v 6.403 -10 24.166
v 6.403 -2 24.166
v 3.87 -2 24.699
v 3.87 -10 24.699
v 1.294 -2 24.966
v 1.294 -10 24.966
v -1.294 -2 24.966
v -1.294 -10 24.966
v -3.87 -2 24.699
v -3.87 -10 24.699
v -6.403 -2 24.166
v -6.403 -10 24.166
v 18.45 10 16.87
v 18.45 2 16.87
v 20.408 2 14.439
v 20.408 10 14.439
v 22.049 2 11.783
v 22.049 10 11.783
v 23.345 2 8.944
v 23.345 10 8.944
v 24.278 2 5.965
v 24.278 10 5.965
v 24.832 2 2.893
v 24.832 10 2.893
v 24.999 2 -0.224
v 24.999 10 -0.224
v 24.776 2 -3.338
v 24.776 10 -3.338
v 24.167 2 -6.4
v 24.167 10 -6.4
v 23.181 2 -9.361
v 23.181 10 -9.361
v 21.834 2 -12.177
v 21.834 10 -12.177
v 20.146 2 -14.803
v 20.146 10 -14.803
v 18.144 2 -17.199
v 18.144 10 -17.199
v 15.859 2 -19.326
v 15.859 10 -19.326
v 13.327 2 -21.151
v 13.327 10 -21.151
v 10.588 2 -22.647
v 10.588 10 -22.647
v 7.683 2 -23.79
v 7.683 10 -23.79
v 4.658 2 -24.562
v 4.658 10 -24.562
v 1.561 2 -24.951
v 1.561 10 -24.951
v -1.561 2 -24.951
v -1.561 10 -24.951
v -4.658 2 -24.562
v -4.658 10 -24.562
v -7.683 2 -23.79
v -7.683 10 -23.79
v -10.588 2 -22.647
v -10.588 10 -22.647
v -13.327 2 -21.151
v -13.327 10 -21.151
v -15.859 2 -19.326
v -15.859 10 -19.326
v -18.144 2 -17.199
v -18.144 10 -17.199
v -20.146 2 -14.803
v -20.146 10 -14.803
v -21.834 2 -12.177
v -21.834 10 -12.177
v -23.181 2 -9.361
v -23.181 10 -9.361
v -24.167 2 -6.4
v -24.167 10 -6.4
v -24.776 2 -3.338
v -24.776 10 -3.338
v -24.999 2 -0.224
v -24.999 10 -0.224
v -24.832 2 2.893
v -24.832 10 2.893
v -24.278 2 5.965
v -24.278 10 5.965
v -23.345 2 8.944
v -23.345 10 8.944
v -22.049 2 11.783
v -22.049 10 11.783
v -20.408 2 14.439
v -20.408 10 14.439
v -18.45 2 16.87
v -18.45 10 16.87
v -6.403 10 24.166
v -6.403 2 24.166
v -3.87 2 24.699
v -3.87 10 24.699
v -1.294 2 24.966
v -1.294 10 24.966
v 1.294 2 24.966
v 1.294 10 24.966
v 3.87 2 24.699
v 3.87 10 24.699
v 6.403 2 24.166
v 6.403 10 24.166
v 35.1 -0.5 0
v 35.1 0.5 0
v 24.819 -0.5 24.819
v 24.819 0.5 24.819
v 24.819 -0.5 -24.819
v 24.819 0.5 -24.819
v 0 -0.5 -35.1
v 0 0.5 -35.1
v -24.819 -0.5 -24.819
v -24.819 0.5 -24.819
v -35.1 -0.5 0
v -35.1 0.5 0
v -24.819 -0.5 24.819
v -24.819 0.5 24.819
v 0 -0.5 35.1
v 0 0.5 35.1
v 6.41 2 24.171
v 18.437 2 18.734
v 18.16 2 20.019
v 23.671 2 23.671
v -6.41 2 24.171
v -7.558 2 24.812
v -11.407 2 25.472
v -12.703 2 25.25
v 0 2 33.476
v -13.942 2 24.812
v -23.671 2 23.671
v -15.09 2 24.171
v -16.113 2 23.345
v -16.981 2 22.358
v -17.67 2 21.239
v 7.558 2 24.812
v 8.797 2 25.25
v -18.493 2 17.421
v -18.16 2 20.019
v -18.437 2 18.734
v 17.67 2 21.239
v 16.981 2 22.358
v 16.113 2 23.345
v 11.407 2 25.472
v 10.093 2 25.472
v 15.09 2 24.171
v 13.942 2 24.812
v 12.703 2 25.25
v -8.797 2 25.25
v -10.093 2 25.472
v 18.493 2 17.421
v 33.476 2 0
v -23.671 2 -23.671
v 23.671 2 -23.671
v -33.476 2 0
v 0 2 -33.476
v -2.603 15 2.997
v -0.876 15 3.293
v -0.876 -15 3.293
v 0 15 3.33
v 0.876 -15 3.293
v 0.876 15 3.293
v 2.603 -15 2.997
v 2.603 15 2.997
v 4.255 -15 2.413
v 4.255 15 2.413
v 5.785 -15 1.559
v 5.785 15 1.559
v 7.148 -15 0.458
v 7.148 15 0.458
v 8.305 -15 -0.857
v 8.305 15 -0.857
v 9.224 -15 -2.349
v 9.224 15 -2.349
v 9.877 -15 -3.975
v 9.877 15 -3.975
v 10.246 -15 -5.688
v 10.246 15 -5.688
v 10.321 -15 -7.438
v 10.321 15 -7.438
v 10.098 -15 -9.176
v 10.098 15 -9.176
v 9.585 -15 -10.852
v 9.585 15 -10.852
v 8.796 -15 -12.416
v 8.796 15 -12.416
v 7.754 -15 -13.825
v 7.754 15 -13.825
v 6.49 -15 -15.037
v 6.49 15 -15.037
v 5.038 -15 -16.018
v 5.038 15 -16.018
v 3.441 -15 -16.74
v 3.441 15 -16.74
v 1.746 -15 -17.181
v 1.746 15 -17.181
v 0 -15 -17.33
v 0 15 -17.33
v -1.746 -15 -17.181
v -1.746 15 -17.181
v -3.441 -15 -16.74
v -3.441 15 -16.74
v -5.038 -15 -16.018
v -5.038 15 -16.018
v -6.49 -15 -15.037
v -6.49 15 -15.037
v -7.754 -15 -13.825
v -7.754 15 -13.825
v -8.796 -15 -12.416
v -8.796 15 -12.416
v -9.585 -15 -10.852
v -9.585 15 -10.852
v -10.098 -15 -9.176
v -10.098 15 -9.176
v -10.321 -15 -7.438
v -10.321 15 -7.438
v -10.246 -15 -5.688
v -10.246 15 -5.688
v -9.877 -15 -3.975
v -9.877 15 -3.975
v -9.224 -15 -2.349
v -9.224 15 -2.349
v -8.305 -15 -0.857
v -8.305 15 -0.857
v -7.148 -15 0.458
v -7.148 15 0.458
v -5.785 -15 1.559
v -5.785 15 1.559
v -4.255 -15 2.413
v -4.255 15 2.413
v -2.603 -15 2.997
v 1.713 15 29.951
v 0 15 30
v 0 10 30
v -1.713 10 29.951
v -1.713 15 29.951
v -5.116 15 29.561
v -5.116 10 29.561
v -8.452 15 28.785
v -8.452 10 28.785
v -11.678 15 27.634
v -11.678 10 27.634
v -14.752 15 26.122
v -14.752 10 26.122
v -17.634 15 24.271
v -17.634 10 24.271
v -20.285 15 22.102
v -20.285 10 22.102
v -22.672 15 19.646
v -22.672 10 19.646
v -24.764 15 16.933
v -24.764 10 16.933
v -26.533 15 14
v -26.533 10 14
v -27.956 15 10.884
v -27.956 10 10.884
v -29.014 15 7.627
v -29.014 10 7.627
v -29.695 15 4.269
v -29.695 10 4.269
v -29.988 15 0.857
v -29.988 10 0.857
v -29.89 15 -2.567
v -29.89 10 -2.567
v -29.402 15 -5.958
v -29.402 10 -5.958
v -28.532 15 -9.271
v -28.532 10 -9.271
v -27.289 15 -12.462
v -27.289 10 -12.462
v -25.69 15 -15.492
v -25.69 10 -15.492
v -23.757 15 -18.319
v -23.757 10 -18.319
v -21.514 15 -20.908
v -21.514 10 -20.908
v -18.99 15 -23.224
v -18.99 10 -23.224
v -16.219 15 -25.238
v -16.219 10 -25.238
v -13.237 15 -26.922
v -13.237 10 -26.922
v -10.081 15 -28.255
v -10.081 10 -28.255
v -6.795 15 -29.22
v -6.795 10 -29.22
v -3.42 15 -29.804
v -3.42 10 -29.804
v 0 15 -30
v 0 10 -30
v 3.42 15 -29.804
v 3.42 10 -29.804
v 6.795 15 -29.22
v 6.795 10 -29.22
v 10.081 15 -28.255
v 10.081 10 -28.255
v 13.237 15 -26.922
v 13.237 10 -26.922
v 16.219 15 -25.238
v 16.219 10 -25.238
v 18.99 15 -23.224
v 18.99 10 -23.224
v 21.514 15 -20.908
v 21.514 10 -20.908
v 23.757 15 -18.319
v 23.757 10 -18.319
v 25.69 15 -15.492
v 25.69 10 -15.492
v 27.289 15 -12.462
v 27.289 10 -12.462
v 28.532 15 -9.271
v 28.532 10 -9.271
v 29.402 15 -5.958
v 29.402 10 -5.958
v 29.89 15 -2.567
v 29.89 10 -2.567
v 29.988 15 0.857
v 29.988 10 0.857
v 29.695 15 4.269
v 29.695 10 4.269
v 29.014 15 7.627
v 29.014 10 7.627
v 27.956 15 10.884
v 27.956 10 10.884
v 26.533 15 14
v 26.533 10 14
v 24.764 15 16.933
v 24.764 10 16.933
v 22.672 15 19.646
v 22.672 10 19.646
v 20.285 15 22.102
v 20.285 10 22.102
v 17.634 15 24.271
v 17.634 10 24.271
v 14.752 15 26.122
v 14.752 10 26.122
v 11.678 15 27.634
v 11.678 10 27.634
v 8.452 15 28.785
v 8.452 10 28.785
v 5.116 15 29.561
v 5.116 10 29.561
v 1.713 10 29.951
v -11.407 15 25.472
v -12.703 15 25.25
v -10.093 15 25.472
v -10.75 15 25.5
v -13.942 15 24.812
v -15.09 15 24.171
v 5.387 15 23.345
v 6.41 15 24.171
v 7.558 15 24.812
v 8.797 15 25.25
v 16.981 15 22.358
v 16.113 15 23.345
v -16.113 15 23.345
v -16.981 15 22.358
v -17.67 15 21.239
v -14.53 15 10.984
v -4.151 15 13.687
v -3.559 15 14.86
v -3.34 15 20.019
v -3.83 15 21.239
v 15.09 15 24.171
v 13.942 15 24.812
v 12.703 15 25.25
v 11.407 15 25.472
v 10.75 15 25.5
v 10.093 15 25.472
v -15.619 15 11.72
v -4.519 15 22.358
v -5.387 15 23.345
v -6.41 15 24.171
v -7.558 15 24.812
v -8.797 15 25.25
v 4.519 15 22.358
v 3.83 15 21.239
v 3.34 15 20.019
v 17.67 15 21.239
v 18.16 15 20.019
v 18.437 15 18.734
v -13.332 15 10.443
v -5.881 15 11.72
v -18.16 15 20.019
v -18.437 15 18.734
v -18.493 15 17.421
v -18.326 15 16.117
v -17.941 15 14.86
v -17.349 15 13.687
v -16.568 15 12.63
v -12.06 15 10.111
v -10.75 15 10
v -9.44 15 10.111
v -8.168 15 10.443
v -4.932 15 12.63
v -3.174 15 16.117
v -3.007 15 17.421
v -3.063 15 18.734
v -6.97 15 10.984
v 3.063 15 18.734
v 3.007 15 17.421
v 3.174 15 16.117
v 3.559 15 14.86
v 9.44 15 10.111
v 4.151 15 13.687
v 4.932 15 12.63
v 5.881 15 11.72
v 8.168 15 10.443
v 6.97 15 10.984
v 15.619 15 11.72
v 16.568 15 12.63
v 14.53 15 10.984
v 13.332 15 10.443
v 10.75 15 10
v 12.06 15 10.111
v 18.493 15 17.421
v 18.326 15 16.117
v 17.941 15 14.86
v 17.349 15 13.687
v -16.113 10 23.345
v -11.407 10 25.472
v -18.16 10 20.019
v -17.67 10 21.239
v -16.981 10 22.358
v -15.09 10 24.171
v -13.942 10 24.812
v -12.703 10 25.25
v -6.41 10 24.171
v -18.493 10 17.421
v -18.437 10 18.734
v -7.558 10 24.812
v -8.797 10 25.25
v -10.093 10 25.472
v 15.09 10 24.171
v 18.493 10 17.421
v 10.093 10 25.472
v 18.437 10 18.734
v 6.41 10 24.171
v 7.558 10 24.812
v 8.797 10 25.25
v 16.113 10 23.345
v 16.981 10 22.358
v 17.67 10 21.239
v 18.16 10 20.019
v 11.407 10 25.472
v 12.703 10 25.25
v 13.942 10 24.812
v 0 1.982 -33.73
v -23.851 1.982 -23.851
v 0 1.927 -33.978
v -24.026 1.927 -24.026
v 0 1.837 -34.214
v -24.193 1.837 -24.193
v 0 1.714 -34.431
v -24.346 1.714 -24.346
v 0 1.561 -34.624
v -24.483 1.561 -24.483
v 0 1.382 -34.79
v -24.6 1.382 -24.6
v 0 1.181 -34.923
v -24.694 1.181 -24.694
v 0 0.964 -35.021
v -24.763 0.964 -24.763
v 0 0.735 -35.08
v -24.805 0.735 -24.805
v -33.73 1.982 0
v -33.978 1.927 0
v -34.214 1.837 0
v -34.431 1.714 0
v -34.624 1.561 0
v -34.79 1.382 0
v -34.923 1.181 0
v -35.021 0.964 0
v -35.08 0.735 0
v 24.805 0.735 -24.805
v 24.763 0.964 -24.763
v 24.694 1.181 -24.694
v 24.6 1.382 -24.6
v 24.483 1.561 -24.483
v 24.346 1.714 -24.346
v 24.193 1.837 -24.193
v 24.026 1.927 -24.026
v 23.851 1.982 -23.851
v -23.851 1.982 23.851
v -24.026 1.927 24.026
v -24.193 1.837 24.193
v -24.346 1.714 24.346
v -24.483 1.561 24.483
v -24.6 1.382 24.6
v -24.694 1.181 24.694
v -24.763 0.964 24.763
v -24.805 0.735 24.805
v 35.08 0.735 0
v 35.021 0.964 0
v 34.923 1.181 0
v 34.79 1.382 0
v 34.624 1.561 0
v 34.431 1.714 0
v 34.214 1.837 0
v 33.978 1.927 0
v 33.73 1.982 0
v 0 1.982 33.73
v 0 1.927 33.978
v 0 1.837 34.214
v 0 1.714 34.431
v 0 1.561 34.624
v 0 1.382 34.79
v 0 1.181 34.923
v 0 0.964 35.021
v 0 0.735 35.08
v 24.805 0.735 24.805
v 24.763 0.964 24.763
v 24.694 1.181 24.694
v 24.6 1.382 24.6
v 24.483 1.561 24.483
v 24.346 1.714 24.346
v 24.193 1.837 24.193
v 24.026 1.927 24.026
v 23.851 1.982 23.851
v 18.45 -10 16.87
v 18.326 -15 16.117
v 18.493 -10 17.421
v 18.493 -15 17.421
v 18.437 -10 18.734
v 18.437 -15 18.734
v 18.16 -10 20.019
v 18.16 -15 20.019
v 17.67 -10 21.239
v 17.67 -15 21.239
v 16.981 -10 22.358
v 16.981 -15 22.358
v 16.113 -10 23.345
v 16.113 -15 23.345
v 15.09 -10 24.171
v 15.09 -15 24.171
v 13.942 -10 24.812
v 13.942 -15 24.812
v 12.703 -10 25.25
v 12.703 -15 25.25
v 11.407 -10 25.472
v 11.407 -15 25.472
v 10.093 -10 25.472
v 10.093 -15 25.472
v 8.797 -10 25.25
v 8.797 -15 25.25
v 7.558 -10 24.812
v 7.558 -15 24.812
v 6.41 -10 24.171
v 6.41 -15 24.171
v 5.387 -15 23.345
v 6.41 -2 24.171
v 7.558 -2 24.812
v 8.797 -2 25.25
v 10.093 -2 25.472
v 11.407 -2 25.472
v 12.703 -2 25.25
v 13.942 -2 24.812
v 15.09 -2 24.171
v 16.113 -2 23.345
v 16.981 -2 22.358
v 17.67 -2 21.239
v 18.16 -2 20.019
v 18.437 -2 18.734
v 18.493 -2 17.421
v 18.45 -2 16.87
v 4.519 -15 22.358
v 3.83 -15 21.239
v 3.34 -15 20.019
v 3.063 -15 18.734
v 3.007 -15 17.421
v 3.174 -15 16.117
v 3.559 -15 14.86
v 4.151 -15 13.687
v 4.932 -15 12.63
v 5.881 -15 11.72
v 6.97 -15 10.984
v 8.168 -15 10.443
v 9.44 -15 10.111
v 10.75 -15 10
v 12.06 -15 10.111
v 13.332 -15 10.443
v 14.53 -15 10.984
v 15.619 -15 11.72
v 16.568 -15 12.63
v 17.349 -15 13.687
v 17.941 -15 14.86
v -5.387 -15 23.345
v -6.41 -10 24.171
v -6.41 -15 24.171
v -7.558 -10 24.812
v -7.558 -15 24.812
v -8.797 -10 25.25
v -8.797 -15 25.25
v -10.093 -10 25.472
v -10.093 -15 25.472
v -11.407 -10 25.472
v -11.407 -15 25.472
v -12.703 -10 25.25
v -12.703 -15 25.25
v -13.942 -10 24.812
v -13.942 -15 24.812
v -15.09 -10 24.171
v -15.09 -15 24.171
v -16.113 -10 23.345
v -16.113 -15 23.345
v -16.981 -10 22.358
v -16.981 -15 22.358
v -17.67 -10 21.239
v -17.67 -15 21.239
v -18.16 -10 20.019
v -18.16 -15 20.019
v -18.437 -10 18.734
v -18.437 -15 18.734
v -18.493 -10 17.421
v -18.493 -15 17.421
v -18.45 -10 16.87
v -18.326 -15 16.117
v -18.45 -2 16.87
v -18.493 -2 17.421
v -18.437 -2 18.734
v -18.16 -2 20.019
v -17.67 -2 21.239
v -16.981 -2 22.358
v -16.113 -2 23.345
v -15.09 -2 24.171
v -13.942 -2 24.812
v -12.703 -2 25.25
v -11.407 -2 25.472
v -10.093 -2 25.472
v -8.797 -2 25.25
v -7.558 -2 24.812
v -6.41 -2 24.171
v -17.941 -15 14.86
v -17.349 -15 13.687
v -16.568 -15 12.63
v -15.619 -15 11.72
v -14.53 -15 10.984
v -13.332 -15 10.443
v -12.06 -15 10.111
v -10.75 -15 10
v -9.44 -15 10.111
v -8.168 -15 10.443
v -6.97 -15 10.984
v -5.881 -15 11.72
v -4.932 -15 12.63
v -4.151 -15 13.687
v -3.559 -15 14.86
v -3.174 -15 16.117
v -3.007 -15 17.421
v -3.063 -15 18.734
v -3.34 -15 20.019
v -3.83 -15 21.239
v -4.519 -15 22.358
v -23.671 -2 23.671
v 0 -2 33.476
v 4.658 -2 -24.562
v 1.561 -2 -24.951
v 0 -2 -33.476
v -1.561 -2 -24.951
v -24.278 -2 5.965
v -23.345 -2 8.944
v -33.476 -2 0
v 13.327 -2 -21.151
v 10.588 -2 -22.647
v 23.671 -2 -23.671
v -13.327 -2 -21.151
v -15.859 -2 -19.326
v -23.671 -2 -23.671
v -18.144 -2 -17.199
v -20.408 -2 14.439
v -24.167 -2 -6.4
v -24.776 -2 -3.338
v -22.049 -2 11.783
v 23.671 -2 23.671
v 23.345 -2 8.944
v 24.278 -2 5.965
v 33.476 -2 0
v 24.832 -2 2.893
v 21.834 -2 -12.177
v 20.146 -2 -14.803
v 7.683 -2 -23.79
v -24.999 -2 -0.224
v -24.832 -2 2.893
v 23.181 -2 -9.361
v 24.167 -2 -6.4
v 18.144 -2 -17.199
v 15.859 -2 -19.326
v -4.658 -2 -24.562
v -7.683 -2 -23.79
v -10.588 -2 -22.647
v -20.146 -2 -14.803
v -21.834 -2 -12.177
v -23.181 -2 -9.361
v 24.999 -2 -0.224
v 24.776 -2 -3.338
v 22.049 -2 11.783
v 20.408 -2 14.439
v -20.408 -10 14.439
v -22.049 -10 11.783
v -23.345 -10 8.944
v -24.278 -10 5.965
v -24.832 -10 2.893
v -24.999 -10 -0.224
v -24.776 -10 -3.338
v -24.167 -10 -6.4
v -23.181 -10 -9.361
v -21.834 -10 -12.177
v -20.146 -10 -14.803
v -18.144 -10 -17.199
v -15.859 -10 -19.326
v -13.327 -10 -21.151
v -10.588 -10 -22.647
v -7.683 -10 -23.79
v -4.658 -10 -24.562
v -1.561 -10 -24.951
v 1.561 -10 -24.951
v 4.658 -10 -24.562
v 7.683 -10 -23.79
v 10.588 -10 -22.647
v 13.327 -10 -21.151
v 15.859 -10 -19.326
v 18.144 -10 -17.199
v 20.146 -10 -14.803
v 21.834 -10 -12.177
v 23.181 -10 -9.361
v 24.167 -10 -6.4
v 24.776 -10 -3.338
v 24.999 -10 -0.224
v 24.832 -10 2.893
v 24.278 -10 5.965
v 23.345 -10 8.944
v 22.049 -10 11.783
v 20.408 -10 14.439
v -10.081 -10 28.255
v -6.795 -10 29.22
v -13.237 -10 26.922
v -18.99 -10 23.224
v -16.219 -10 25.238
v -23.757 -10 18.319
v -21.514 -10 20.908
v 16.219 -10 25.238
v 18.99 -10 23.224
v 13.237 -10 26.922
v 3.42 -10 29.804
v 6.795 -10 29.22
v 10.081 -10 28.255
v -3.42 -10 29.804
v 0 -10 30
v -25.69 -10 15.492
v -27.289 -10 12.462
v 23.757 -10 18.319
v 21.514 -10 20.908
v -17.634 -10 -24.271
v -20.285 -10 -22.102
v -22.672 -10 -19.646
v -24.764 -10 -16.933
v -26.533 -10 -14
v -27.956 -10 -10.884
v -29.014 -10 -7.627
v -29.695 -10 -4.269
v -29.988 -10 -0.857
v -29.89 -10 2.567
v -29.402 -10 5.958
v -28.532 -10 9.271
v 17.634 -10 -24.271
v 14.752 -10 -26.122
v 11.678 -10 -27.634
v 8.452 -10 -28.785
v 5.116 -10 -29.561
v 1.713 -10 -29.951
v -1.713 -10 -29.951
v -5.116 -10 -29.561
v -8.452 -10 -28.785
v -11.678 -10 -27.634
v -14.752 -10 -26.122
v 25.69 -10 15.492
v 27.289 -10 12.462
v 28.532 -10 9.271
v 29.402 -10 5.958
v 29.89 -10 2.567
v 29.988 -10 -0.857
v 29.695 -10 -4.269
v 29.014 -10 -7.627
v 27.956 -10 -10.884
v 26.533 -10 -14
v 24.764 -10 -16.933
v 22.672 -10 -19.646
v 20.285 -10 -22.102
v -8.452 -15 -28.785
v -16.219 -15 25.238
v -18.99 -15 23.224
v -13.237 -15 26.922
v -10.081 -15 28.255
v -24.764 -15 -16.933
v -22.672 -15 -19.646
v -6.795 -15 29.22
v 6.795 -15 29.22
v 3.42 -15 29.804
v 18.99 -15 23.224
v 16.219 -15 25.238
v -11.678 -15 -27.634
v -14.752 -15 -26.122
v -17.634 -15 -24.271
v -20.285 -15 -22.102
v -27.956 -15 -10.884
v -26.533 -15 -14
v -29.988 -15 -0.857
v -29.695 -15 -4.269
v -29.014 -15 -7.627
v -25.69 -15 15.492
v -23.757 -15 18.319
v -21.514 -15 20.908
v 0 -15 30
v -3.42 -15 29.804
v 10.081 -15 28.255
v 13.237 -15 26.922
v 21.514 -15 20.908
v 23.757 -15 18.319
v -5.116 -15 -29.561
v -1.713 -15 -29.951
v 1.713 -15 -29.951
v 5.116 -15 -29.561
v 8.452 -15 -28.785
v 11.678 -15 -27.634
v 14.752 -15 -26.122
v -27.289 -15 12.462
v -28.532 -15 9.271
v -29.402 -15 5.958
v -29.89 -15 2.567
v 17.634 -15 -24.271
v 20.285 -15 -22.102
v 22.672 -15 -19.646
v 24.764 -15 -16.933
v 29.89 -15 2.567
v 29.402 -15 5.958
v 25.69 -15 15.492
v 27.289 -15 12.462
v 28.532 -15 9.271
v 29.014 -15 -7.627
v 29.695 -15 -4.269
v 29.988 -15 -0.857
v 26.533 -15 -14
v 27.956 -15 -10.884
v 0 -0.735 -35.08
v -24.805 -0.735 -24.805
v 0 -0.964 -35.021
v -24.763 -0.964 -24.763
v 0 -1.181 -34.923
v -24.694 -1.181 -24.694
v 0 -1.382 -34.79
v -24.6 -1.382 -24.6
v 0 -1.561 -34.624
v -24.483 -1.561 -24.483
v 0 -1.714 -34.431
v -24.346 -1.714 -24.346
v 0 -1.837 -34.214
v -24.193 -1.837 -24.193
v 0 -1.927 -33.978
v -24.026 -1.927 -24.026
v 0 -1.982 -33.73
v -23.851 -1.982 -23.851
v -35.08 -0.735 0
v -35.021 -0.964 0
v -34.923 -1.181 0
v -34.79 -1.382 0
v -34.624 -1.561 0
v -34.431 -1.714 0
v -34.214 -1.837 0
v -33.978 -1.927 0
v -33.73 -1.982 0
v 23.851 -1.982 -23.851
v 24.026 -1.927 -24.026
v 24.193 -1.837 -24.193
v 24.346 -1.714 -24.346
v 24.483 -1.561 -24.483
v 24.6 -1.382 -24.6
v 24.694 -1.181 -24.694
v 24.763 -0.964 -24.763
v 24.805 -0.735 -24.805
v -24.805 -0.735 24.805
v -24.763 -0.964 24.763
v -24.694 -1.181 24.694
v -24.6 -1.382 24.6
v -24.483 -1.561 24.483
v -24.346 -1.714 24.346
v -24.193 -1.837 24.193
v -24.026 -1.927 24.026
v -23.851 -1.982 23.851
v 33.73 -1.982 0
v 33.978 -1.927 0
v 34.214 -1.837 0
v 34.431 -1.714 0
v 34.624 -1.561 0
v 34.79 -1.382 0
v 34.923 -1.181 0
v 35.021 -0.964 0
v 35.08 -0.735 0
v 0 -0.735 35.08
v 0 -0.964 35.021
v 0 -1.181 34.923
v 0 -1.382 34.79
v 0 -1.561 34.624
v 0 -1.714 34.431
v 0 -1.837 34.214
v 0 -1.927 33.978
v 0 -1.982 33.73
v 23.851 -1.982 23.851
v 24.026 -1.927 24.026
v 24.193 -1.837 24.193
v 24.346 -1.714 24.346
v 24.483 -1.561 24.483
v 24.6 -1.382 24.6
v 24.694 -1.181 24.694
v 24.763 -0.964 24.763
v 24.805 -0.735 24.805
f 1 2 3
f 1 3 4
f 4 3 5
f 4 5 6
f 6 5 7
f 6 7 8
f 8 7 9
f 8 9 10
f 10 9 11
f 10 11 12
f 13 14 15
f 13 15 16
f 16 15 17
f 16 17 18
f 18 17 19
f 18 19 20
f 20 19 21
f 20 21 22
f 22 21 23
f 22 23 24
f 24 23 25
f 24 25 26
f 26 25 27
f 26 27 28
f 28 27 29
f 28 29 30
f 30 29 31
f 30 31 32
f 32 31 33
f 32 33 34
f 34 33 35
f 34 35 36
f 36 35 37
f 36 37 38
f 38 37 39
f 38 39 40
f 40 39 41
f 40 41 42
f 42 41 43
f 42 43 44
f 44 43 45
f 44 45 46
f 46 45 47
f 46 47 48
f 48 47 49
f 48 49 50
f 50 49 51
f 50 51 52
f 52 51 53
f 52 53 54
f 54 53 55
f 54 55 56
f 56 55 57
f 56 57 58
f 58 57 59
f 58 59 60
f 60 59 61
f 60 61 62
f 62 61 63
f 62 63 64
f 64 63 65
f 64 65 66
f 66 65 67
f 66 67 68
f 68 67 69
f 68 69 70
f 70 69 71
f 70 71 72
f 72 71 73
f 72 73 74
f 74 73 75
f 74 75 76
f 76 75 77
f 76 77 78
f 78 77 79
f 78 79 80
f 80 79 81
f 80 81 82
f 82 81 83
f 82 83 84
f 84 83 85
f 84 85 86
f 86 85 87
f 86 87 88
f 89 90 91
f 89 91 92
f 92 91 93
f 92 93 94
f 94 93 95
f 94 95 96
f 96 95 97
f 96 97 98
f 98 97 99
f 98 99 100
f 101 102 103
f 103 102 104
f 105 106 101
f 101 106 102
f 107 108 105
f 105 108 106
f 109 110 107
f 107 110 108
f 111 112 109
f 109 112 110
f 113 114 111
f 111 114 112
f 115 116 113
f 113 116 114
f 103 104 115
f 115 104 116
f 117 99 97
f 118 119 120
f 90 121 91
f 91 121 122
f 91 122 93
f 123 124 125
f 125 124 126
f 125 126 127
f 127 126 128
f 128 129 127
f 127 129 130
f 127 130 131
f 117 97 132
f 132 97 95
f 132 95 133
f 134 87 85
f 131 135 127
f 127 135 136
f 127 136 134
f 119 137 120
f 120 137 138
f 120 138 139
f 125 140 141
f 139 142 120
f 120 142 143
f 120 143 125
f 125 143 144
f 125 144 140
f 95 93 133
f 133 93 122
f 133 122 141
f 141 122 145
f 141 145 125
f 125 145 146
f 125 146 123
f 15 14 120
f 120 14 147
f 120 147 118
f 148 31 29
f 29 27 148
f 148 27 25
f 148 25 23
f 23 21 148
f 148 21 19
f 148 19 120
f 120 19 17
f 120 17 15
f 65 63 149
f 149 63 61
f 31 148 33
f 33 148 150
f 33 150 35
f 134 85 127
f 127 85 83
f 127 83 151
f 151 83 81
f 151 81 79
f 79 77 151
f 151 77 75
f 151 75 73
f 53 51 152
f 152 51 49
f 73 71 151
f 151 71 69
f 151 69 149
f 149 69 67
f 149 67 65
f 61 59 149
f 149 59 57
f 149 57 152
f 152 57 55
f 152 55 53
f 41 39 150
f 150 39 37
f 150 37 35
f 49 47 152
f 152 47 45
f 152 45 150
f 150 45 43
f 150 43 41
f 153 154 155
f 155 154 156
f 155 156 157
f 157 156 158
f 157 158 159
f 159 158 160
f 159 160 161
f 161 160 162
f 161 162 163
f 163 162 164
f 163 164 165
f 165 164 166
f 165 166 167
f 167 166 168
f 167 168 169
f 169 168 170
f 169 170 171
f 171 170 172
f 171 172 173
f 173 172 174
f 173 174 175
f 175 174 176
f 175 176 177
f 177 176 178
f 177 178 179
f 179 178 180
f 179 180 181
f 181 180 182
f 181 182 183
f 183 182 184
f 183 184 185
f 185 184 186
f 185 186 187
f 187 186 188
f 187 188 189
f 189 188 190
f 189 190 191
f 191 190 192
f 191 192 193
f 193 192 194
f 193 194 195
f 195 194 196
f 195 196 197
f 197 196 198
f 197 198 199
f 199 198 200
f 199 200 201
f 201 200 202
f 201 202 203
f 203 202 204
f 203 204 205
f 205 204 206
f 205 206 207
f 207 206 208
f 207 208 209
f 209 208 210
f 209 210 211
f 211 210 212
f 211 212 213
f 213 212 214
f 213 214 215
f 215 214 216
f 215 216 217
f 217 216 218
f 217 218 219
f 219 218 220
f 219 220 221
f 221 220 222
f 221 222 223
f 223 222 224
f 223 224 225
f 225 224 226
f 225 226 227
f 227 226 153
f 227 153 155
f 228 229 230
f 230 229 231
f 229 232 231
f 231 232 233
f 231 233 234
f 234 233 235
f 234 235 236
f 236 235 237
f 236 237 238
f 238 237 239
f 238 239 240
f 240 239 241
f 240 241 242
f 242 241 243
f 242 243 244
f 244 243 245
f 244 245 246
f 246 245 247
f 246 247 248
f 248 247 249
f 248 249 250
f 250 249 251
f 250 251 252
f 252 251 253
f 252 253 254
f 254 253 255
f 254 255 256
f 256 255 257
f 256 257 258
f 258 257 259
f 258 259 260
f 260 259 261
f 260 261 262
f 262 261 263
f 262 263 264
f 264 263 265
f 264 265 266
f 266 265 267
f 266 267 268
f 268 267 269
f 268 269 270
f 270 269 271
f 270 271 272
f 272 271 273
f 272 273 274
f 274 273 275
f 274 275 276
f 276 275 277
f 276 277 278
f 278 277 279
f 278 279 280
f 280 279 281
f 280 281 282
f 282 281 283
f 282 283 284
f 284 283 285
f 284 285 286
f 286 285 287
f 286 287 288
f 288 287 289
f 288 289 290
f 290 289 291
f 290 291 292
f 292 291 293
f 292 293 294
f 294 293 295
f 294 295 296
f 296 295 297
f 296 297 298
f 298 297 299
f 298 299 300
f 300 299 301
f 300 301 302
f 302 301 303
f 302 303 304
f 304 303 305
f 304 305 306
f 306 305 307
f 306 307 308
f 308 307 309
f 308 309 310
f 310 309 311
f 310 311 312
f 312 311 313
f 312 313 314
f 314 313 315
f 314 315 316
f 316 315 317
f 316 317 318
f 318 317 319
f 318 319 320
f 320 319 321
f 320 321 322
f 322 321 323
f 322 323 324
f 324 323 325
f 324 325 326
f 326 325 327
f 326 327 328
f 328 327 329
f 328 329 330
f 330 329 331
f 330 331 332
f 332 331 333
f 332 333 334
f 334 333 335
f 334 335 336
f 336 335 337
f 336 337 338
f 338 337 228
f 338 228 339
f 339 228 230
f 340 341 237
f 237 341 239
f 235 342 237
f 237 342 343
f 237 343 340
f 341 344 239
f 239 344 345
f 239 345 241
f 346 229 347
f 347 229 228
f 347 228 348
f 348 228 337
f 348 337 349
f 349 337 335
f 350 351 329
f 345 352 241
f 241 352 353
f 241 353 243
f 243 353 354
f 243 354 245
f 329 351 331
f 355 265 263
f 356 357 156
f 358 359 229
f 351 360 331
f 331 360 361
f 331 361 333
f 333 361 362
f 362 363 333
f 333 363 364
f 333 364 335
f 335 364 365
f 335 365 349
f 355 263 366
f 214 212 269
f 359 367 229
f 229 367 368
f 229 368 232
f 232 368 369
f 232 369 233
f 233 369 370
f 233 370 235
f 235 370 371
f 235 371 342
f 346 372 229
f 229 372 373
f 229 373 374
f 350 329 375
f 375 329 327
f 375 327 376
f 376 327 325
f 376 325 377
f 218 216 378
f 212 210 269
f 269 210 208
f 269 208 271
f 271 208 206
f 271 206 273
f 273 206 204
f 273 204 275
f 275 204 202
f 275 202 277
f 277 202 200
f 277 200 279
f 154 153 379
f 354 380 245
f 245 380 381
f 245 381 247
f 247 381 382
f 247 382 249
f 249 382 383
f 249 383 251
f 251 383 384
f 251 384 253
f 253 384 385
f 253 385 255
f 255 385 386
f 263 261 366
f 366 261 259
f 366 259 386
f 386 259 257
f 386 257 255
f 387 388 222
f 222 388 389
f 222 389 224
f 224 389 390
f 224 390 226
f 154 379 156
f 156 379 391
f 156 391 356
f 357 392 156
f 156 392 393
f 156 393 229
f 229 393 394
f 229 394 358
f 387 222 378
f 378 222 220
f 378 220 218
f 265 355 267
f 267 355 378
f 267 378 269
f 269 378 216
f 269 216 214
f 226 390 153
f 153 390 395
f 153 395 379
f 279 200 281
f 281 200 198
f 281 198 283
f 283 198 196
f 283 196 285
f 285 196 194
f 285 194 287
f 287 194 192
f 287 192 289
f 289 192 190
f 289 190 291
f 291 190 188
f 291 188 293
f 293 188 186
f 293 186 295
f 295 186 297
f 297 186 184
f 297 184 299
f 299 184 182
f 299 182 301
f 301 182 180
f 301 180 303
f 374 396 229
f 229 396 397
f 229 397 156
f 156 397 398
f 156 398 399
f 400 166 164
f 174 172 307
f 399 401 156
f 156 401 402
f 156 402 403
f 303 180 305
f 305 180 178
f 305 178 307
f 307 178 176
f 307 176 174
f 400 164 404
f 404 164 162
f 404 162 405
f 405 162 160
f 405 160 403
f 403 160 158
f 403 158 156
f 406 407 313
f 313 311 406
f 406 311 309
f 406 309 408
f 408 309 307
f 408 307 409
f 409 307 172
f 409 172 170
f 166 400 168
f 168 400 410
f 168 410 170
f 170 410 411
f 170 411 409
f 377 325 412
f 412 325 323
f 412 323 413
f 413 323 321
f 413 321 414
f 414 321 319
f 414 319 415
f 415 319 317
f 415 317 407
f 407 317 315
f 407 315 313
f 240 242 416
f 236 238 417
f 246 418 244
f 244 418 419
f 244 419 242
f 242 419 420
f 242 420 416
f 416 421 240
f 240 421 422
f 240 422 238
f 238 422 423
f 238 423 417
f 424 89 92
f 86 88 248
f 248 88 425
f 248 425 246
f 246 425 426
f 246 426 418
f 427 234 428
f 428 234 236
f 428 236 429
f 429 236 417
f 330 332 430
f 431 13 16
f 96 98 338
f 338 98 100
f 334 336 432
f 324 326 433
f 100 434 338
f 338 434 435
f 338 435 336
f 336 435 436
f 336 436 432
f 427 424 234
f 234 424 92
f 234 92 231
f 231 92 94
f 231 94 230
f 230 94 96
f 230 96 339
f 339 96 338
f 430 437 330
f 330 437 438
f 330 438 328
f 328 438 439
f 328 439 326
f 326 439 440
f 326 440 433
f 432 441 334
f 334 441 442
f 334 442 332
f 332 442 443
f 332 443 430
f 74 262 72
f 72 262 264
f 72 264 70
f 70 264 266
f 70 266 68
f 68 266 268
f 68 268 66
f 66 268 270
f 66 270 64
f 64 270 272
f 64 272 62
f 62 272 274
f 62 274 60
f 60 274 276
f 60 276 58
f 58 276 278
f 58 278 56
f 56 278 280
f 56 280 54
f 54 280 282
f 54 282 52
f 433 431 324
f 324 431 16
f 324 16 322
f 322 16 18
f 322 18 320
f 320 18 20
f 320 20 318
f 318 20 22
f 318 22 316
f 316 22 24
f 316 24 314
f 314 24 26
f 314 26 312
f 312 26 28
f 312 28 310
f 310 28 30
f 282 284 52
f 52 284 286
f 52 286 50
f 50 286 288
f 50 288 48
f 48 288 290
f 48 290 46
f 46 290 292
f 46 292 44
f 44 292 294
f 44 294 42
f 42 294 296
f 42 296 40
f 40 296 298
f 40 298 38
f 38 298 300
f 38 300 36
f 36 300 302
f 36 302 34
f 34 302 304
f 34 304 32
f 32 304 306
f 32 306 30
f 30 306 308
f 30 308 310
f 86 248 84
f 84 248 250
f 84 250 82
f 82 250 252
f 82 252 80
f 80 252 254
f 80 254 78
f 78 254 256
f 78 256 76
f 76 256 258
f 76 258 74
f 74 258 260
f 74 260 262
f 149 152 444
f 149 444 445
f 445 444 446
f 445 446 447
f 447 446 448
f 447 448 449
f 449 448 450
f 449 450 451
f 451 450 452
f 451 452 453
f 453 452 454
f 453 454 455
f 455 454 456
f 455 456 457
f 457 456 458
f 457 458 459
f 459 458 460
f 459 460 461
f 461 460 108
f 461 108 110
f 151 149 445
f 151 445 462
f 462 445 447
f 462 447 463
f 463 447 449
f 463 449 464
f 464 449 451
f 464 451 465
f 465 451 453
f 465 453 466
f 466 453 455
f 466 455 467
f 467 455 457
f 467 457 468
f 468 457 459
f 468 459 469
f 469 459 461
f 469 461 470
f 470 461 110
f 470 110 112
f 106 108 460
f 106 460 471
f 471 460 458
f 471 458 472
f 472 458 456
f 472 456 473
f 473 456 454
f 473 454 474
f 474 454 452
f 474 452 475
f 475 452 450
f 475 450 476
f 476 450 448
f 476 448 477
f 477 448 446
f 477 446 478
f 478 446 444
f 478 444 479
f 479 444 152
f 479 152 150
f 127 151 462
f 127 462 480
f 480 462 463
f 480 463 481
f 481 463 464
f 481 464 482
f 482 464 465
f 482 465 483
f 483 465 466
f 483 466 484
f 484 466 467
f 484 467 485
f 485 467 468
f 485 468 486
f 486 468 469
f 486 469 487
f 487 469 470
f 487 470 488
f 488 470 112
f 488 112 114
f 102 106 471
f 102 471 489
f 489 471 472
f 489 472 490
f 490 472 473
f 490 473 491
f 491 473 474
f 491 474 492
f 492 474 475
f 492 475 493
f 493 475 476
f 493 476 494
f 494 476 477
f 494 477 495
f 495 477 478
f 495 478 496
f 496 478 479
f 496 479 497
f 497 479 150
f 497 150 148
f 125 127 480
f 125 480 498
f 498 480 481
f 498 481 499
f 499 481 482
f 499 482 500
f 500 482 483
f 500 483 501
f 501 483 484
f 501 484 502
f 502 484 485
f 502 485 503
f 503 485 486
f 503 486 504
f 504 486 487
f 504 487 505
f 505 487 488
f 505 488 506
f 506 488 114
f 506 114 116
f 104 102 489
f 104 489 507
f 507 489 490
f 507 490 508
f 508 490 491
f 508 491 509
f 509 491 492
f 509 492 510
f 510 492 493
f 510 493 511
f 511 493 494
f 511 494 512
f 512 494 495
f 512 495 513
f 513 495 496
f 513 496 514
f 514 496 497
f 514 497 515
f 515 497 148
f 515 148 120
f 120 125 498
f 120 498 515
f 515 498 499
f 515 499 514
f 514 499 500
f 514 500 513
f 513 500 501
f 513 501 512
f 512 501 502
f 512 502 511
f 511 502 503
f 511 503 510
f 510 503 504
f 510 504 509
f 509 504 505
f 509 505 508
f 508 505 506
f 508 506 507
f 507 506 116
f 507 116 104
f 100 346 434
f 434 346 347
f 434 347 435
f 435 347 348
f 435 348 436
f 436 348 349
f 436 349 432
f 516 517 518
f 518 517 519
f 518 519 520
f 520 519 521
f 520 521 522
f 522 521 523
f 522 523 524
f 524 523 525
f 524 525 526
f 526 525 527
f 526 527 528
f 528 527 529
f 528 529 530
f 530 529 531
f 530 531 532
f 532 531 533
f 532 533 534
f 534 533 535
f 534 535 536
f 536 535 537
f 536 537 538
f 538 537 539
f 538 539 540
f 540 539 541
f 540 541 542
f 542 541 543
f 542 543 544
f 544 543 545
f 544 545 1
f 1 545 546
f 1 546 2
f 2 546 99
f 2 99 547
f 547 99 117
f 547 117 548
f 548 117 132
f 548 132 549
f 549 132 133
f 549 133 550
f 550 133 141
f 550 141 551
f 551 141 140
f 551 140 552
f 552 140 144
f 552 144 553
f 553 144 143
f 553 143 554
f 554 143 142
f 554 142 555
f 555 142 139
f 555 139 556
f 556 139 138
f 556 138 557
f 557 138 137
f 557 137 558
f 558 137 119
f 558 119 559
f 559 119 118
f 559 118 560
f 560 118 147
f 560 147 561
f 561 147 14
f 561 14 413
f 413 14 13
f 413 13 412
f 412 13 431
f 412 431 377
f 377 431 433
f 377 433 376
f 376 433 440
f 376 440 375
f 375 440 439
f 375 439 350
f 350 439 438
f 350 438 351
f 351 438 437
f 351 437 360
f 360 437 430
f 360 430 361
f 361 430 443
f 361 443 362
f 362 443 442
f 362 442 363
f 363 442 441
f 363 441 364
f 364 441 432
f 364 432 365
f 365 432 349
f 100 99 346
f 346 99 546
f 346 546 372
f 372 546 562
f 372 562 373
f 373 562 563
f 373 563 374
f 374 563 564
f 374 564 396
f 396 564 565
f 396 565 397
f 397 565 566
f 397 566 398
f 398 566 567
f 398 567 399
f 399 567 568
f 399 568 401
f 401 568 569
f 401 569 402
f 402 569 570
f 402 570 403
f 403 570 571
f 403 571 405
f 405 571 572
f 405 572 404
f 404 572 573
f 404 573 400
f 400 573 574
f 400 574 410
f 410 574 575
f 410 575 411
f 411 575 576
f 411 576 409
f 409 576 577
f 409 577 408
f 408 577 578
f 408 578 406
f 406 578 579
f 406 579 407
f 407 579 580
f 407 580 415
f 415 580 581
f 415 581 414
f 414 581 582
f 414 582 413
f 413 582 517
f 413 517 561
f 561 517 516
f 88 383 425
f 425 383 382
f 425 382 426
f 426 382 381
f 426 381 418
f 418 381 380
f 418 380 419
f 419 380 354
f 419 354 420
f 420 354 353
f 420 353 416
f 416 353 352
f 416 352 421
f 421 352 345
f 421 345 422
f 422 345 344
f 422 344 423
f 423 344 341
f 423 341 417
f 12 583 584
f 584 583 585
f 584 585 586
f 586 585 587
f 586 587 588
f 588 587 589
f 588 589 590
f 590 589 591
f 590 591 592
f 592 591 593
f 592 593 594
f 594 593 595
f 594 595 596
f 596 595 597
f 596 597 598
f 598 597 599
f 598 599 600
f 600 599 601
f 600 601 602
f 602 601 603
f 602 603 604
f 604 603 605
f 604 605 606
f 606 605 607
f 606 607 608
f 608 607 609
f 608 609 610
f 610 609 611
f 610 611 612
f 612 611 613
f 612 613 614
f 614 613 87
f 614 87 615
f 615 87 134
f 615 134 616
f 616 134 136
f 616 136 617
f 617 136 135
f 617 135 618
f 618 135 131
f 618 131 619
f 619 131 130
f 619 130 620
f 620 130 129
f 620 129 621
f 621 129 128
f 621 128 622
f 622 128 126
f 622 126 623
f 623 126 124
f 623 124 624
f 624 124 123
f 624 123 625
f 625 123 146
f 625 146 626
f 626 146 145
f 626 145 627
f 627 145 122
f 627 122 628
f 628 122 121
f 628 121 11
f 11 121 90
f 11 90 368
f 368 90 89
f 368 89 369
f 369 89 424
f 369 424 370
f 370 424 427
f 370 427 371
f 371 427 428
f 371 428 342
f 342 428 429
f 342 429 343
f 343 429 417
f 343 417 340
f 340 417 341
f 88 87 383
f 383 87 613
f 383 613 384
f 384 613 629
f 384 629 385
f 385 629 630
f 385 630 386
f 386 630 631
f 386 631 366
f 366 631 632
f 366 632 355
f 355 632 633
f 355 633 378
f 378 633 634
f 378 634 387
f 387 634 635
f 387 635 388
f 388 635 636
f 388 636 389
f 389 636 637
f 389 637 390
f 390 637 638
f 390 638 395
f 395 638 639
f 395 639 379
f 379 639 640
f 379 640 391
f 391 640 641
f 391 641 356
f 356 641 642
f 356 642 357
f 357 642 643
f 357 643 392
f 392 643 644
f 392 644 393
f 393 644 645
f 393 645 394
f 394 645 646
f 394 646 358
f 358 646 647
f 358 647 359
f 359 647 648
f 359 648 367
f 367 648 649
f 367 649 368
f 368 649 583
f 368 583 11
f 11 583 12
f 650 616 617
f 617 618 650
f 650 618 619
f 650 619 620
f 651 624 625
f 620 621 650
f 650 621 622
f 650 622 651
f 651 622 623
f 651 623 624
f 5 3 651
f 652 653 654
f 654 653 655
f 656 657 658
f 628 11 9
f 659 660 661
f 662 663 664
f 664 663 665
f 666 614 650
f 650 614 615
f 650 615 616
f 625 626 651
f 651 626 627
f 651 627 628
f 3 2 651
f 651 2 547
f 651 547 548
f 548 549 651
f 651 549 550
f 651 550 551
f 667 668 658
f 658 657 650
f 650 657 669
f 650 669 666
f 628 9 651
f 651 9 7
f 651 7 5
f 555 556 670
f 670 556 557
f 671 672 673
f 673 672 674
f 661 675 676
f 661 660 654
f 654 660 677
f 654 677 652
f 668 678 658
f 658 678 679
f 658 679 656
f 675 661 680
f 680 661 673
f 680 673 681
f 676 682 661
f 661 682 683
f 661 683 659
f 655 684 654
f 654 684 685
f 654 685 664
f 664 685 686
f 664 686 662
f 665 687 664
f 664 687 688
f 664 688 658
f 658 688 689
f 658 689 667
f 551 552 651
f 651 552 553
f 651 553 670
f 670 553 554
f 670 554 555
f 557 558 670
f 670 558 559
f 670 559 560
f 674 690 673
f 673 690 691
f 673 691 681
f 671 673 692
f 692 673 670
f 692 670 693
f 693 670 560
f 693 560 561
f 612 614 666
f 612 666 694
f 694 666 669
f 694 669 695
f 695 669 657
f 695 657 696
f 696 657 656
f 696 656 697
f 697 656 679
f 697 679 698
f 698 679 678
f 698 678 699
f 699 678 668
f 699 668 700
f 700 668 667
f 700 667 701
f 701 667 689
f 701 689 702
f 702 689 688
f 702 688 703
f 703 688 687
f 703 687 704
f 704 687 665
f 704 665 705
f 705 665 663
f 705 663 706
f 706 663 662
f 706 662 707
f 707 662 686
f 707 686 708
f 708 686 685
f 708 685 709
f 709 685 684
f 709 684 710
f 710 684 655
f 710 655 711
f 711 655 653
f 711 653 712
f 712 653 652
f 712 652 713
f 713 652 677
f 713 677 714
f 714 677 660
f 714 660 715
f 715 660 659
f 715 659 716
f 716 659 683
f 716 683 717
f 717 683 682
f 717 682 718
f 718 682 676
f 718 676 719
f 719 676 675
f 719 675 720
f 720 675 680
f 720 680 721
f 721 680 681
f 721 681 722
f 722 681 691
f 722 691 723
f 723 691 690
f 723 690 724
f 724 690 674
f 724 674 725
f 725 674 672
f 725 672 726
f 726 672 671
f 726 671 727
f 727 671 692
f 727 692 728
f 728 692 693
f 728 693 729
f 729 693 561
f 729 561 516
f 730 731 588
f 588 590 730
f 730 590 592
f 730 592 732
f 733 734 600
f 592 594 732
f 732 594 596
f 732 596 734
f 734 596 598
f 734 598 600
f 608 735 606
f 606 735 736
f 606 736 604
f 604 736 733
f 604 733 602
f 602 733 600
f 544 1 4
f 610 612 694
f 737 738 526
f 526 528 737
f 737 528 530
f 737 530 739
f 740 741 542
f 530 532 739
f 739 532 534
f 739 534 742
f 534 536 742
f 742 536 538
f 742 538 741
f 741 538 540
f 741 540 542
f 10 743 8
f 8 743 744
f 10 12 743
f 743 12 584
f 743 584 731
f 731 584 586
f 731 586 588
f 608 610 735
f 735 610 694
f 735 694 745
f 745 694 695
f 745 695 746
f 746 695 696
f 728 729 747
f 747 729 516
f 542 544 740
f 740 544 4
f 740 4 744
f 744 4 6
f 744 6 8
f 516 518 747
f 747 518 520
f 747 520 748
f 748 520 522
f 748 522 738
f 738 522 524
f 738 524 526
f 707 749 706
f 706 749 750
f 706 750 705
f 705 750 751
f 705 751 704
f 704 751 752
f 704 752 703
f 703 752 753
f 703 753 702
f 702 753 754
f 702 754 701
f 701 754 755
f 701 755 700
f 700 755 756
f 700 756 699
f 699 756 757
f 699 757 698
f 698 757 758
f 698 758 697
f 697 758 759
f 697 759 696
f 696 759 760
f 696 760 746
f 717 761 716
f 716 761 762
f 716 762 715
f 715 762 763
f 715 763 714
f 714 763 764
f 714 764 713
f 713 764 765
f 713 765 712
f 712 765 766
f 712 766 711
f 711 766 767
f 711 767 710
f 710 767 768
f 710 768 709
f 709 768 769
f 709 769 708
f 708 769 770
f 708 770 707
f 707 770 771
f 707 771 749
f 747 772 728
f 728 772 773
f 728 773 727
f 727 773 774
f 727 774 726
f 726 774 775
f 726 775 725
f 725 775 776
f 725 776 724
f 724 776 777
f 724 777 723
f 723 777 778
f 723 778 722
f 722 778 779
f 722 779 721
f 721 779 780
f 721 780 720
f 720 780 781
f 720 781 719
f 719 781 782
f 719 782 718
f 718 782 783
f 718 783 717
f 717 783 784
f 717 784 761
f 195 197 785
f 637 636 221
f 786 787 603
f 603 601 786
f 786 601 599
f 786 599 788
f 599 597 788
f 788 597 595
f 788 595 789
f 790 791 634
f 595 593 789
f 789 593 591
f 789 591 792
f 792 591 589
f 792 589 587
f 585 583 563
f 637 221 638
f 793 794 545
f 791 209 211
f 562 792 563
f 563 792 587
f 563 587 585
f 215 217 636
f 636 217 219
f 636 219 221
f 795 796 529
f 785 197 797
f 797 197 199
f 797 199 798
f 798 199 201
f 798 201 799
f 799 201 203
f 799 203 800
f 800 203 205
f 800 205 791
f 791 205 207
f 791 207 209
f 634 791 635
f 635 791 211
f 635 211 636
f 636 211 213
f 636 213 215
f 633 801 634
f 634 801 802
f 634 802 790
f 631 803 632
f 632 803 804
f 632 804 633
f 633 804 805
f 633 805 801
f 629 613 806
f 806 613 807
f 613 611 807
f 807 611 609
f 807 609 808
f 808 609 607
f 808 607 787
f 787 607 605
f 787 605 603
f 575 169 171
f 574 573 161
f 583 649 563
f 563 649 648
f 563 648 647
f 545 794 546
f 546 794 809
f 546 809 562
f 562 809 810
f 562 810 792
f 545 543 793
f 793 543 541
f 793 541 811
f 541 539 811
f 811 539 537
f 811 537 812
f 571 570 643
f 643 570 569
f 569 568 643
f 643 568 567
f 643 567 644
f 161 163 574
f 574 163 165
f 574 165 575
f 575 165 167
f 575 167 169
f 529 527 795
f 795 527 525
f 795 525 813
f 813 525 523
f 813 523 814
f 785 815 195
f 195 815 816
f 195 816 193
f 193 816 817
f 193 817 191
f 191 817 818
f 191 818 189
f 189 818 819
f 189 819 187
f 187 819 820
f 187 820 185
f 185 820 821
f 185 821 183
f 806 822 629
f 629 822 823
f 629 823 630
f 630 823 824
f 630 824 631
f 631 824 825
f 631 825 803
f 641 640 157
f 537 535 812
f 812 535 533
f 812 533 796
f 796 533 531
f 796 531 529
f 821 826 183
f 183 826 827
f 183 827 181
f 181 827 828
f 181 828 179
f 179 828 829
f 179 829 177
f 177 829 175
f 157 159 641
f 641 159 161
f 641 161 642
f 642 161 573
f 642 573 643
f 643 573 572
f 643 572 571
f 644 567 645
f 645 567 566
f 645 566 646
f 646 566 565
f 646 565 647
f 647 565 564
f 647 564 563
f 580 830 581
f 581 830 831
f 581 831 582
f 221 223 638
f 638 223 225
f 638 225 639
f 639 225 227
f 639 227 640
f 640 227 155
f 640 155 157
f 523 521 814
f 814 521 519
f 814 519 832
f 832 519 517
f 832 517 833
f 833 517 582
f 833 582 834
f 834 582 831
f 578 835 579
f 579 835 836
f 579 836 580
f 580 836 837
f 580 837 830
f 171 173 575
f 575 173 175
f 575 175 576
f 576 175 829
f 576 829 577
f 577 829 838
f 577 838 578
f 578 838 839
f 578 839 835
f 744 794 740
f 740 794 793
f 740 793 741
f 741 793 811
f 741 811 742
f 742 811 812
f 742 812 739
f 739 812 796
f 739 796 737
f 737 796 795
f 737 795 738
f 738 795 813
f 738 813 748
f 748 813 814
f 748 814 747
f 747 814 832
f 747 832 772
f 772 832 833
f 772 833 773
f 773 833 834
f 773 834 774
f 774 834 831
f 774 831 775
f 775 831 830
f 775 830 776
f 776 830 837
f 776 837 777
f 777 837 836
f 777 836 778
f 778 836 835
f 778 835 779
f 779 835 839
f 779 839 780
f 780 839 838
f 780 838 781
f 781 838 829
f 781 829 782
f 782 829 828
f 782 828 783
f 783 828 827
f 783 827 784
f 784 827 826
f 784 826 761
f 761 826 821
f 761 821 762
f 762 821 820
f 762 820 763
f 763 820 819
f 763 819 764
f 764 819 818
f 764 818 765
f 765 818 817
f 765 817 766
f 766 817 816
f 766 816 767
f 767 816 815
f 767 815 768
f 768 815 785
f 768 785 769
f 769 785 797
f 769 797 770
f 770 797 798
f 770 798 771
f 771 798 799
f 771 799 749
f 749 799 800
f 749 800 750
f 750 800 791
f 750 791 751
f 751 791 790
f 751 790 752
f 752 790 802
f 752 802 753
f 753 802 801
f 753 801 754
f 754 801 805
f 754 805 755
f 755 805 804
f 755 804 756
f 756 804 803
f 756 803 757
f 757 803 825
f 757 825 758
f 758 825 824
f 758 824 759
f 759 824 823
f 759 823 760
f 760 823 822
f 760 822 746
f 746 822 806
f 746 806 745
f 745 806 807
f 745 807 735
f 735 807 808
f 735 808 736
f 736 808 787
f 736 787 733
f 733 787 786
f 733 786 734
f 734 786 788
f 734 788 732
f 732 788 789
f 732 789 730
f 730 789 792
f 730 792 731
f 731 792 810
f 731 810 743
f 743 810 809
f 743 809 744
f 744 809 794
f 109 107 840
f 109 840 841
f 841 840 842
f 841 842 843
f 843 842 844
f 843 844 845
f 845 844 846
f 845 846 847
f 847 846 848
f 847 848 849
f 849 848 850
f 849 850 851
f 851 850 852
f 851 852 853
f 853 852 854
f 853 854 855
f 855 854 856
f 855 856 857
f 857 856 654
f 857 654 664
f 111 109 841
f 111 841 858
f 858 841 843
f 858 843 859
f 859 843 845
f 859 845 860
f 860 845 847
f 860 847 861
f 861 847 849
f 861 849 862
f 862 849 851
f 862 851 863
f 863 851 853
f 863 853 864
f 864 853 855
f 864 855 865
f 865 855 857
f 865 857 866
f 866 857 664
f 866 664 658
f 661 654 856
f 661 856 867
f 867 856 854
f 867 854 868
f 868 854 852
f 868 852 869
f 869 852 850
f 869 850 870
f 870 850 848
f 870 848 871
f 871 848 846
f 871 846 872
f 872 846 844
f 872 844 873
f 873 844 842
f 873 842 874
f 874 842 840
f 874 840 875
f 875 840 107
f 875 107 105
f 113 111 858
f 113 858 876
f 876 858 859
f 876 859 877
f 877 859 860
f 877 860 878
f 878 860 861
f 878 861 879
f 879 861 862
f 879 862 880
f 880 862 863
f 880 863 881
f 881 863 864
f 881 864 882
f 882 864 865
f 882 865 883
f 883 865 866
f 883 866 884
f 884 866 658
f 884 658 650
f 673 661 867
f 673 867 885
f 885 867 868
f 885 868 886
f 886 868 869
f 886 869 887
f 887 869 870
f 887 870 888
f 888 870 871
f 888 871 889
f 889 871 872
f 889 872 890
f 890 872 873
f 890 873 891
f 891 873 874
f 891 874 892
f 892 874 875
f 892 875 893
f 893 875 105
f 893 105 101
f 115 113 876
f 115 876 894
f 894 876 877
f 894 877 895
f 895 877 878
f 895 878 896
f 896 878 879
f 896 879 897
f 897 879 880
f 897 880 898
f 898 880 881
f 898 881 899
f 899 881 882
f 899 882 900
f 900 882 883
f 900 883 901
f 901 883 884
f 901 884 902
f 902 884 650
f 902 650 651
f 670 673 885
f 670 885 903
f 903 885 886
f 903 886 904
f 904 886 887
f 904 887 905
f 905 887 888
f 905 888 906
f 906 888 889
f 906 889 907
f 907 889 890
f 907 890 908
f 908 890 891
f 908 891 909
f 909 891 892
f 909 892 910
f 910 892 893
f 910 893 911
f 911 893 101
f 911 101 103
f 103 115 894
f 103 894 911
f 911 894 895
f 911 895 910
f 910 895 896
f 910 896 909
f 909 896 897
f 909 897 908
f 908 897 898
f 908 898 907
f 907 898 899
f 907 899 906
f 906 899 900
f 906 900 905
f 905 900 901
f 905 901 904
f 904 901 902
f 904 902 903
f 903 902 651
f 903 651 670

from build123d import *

# Parameters (mm, degrees)
BOSS_EXTRUDE1_DEPTH  = 2
SKETCH12_R           = 25
BOSS_EXTRUDE2_DEPTH  = 8
CUT_EXTRUDE6_START   = -36
SKETCH17_R           = 10.33
CUT_EXTRUDE6_DEPTH   = 45.856111051
SKETCH25_R           = 30
BOSS_EXTRUDE3_DEPTH  = 5
CUT_EXTRUDE9_START   = -53
SKETCH26_R           = 10.33
CUT_EXTRUDE9_DEPTH   = 53
FILLET3_R            = 1.5
SKETCH23_R           = 7.75
CUT_EXTRUDE11_DEPTH  = 36
FILLET3_OF_MIRROR1_R = 1.5
CUT_EXTRUDE12_START  = -10
SKETCH28_R           = 10.33
CUT_EXTRUDE12_DEPTH  = 10


with BuildPart() as part:
    # Sketch3 → Boss-Extrude1 (new body)
    with BuildSketch(Plane(origin=(0, 0, 0), x_dir=(1, 0, 0), z_dir=(0, 1, 0))):
        Polygon((35.1, 0), (24.81944802, 24.81944802), (0, 35.1), (-24.81944802, 24.81944802), (-35.1, 0), (-24.81944802, -24.81944802), (0, -35.1), (24.81944802, -24.81944802), align=None)
    boss_extrude1 = extrude(amount=BOSS_EXTRUDE1_DEPTH)

    # Sketch12 → Boss-Extrude2 (add)
    with BuildSketch(Plane(origin=(0, 2, 0), x_dir=(1, 0, 0), z_dir=(0, 1, 0))):
        Circle(SKETCH12_R)
    boss_extrude2 = extrude(amount=BOSS_EXTRUDE2_DEPTH)

    # Sketch17 → Cut-Extrude6 (cut)
    with BuildSketch(Plane(origin=(0, 10, 0), x_dir=(1, 0, 0), z_dir=(0, 1, 0)).offset(CUT_EXTRUDE6_START)):
        with Locations((0, 7)):
            Circle(SKETCH17_R)
    cut_extrude6 = extrude(amount=CUT_EXTRUDE6_DEPTH, mode=Mode.SUBTRACT)

    # Sketch25 → Boss-Extrude3 (add)
    with BuildSketch(Plane(origin=(0, 10, 0), x_dir=(1, 0, 0), z_dir=(0, 1, 0))):
        Circle(SKETCH25_R)
    boss_extrude3 = extrude(amount=BOSS_EXTRUDE3_DEPTH)

    # Sketch26 → Cut-Extrude9 (cut)
    with BuildSketch(Plane(origin=(0, 15, 0), x_dir=(1, 0, 0), z_dir=(0, 1, 0)).offset(CUT_EXTRUDE9_START)):
        with Locations((0, 7)):
            Circle(SKETCH26_R)
    extrude(amount=CUT_EXTRUDE9_DEPTH, mode=Mode.SUBTRACT)

    # Fillet3
    fillet3_edges = [part.edges().sort_by_distance(p)[0] for p in [
        (12.40972401, 2, 29.95972401),
        (29.95972401, 2, 12.40972401),
        (-12.40972401, 2, 29.95972401),
        (-29.95972401, 2, 12.40972401),
        (-29.95972401, 2, -12.40972401),
        (29.95972401, 2, -12.40972401),
        (-12.40972401, 2, -29.95972401),
        (12.40972401, 2, -29.95972401),
    ]]
    fillet(fillet3_edges, radius=FILLET3_R)

    # Sketch23 → Cut-Extrude11 (cut, symmetric)
    with BuildSketch(Plane(origin=(0, 10, 0), x_dir=(1, 0, 0), z_dir=(0, 1, 0))):
        with Locations((-10.75, -17.75)):
            Circle(SKETCH23_R)
        with Locations((10.75, -17.75)):
            Circle(SKETCH23_R)
    cut_extrude11 = extrude(amount=CUT_EXTRUDE11_DEPTH, both=True, mode=Mode.SUBTRACT)

    # Mirror1: Boss-Extrude1, Boss-Extrude2, Cut-Extrude6, Boss-Extrude3, Cut-Extrude11 across plane
    add(boss_extrude1.mirror(Plane.ZX))
    add(boss_extrude2.mirror(Plane.ZX))
    add(cut_extrude6.mirror(Plane.ZX), mode=Mode.SUBTRACT)
    add(boss_extrude3.mirror(Plane.ZX))
    add(cut_extrude11.mirror(Plane.ZX), mode=Mode.SUBTRACT)

    # Fillet3 of Mirror1
    fillet3_of_mirror1_edges = [part.edges().sort_by_distance(p)[0] for p in [
        (12.40972401, -2, 29.95972401),
        (29.95972401, -2, 12.40972401),
        (-12.40972401, -2, 29.95972401),
        (-29.95972401, -2, 12.40972401),
        (-29.95972401, -2, -12.40972401),
        (29.95972401, -2, -12.40972401),
        (-12.40972401, -2, -29.95972401),
        (12.40972401, -2, -29.95972401),
    ]]
    fillet(fillet3_of_mirror1_edges, radius=FILLET3_OF_MIRROR1_R)

    # Sketch28 → Cut-Extrude12 (cut)
    with BuildSketch(Plane.XZ.offset(15).offset(CUT_EXTRUDE12_START)):
        with Locations((0, -7)):
            Circle(SKETCH28_R)
    extrude(amount=CUT_EXTRUDE12_DEPTH, mode=Mode.SUBTRACT)


solid = part.part
